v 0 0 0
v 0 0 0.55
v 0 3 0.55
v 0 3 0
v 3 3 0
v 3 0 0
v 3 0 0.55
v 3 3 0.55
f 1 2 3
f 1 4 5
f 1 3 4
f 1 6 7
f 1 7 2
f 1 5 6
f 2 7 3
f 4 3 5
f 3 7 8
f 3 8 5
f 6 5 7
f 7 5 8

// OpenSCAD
/* Warning, this is a very basic generator with a lot of approximation 
input data : [UQFN, UCX, 3x3x0.55mm, 16, , A, C04-00253A]
generated by com.zoubworld.electronics.cad.model3d.Basic
Date : Sun Feb 15 10:50:48 CET 2026
*/

//body
color("black")
translate([0,0,0])
cube([3.0,3.0,0.55], center=false);
